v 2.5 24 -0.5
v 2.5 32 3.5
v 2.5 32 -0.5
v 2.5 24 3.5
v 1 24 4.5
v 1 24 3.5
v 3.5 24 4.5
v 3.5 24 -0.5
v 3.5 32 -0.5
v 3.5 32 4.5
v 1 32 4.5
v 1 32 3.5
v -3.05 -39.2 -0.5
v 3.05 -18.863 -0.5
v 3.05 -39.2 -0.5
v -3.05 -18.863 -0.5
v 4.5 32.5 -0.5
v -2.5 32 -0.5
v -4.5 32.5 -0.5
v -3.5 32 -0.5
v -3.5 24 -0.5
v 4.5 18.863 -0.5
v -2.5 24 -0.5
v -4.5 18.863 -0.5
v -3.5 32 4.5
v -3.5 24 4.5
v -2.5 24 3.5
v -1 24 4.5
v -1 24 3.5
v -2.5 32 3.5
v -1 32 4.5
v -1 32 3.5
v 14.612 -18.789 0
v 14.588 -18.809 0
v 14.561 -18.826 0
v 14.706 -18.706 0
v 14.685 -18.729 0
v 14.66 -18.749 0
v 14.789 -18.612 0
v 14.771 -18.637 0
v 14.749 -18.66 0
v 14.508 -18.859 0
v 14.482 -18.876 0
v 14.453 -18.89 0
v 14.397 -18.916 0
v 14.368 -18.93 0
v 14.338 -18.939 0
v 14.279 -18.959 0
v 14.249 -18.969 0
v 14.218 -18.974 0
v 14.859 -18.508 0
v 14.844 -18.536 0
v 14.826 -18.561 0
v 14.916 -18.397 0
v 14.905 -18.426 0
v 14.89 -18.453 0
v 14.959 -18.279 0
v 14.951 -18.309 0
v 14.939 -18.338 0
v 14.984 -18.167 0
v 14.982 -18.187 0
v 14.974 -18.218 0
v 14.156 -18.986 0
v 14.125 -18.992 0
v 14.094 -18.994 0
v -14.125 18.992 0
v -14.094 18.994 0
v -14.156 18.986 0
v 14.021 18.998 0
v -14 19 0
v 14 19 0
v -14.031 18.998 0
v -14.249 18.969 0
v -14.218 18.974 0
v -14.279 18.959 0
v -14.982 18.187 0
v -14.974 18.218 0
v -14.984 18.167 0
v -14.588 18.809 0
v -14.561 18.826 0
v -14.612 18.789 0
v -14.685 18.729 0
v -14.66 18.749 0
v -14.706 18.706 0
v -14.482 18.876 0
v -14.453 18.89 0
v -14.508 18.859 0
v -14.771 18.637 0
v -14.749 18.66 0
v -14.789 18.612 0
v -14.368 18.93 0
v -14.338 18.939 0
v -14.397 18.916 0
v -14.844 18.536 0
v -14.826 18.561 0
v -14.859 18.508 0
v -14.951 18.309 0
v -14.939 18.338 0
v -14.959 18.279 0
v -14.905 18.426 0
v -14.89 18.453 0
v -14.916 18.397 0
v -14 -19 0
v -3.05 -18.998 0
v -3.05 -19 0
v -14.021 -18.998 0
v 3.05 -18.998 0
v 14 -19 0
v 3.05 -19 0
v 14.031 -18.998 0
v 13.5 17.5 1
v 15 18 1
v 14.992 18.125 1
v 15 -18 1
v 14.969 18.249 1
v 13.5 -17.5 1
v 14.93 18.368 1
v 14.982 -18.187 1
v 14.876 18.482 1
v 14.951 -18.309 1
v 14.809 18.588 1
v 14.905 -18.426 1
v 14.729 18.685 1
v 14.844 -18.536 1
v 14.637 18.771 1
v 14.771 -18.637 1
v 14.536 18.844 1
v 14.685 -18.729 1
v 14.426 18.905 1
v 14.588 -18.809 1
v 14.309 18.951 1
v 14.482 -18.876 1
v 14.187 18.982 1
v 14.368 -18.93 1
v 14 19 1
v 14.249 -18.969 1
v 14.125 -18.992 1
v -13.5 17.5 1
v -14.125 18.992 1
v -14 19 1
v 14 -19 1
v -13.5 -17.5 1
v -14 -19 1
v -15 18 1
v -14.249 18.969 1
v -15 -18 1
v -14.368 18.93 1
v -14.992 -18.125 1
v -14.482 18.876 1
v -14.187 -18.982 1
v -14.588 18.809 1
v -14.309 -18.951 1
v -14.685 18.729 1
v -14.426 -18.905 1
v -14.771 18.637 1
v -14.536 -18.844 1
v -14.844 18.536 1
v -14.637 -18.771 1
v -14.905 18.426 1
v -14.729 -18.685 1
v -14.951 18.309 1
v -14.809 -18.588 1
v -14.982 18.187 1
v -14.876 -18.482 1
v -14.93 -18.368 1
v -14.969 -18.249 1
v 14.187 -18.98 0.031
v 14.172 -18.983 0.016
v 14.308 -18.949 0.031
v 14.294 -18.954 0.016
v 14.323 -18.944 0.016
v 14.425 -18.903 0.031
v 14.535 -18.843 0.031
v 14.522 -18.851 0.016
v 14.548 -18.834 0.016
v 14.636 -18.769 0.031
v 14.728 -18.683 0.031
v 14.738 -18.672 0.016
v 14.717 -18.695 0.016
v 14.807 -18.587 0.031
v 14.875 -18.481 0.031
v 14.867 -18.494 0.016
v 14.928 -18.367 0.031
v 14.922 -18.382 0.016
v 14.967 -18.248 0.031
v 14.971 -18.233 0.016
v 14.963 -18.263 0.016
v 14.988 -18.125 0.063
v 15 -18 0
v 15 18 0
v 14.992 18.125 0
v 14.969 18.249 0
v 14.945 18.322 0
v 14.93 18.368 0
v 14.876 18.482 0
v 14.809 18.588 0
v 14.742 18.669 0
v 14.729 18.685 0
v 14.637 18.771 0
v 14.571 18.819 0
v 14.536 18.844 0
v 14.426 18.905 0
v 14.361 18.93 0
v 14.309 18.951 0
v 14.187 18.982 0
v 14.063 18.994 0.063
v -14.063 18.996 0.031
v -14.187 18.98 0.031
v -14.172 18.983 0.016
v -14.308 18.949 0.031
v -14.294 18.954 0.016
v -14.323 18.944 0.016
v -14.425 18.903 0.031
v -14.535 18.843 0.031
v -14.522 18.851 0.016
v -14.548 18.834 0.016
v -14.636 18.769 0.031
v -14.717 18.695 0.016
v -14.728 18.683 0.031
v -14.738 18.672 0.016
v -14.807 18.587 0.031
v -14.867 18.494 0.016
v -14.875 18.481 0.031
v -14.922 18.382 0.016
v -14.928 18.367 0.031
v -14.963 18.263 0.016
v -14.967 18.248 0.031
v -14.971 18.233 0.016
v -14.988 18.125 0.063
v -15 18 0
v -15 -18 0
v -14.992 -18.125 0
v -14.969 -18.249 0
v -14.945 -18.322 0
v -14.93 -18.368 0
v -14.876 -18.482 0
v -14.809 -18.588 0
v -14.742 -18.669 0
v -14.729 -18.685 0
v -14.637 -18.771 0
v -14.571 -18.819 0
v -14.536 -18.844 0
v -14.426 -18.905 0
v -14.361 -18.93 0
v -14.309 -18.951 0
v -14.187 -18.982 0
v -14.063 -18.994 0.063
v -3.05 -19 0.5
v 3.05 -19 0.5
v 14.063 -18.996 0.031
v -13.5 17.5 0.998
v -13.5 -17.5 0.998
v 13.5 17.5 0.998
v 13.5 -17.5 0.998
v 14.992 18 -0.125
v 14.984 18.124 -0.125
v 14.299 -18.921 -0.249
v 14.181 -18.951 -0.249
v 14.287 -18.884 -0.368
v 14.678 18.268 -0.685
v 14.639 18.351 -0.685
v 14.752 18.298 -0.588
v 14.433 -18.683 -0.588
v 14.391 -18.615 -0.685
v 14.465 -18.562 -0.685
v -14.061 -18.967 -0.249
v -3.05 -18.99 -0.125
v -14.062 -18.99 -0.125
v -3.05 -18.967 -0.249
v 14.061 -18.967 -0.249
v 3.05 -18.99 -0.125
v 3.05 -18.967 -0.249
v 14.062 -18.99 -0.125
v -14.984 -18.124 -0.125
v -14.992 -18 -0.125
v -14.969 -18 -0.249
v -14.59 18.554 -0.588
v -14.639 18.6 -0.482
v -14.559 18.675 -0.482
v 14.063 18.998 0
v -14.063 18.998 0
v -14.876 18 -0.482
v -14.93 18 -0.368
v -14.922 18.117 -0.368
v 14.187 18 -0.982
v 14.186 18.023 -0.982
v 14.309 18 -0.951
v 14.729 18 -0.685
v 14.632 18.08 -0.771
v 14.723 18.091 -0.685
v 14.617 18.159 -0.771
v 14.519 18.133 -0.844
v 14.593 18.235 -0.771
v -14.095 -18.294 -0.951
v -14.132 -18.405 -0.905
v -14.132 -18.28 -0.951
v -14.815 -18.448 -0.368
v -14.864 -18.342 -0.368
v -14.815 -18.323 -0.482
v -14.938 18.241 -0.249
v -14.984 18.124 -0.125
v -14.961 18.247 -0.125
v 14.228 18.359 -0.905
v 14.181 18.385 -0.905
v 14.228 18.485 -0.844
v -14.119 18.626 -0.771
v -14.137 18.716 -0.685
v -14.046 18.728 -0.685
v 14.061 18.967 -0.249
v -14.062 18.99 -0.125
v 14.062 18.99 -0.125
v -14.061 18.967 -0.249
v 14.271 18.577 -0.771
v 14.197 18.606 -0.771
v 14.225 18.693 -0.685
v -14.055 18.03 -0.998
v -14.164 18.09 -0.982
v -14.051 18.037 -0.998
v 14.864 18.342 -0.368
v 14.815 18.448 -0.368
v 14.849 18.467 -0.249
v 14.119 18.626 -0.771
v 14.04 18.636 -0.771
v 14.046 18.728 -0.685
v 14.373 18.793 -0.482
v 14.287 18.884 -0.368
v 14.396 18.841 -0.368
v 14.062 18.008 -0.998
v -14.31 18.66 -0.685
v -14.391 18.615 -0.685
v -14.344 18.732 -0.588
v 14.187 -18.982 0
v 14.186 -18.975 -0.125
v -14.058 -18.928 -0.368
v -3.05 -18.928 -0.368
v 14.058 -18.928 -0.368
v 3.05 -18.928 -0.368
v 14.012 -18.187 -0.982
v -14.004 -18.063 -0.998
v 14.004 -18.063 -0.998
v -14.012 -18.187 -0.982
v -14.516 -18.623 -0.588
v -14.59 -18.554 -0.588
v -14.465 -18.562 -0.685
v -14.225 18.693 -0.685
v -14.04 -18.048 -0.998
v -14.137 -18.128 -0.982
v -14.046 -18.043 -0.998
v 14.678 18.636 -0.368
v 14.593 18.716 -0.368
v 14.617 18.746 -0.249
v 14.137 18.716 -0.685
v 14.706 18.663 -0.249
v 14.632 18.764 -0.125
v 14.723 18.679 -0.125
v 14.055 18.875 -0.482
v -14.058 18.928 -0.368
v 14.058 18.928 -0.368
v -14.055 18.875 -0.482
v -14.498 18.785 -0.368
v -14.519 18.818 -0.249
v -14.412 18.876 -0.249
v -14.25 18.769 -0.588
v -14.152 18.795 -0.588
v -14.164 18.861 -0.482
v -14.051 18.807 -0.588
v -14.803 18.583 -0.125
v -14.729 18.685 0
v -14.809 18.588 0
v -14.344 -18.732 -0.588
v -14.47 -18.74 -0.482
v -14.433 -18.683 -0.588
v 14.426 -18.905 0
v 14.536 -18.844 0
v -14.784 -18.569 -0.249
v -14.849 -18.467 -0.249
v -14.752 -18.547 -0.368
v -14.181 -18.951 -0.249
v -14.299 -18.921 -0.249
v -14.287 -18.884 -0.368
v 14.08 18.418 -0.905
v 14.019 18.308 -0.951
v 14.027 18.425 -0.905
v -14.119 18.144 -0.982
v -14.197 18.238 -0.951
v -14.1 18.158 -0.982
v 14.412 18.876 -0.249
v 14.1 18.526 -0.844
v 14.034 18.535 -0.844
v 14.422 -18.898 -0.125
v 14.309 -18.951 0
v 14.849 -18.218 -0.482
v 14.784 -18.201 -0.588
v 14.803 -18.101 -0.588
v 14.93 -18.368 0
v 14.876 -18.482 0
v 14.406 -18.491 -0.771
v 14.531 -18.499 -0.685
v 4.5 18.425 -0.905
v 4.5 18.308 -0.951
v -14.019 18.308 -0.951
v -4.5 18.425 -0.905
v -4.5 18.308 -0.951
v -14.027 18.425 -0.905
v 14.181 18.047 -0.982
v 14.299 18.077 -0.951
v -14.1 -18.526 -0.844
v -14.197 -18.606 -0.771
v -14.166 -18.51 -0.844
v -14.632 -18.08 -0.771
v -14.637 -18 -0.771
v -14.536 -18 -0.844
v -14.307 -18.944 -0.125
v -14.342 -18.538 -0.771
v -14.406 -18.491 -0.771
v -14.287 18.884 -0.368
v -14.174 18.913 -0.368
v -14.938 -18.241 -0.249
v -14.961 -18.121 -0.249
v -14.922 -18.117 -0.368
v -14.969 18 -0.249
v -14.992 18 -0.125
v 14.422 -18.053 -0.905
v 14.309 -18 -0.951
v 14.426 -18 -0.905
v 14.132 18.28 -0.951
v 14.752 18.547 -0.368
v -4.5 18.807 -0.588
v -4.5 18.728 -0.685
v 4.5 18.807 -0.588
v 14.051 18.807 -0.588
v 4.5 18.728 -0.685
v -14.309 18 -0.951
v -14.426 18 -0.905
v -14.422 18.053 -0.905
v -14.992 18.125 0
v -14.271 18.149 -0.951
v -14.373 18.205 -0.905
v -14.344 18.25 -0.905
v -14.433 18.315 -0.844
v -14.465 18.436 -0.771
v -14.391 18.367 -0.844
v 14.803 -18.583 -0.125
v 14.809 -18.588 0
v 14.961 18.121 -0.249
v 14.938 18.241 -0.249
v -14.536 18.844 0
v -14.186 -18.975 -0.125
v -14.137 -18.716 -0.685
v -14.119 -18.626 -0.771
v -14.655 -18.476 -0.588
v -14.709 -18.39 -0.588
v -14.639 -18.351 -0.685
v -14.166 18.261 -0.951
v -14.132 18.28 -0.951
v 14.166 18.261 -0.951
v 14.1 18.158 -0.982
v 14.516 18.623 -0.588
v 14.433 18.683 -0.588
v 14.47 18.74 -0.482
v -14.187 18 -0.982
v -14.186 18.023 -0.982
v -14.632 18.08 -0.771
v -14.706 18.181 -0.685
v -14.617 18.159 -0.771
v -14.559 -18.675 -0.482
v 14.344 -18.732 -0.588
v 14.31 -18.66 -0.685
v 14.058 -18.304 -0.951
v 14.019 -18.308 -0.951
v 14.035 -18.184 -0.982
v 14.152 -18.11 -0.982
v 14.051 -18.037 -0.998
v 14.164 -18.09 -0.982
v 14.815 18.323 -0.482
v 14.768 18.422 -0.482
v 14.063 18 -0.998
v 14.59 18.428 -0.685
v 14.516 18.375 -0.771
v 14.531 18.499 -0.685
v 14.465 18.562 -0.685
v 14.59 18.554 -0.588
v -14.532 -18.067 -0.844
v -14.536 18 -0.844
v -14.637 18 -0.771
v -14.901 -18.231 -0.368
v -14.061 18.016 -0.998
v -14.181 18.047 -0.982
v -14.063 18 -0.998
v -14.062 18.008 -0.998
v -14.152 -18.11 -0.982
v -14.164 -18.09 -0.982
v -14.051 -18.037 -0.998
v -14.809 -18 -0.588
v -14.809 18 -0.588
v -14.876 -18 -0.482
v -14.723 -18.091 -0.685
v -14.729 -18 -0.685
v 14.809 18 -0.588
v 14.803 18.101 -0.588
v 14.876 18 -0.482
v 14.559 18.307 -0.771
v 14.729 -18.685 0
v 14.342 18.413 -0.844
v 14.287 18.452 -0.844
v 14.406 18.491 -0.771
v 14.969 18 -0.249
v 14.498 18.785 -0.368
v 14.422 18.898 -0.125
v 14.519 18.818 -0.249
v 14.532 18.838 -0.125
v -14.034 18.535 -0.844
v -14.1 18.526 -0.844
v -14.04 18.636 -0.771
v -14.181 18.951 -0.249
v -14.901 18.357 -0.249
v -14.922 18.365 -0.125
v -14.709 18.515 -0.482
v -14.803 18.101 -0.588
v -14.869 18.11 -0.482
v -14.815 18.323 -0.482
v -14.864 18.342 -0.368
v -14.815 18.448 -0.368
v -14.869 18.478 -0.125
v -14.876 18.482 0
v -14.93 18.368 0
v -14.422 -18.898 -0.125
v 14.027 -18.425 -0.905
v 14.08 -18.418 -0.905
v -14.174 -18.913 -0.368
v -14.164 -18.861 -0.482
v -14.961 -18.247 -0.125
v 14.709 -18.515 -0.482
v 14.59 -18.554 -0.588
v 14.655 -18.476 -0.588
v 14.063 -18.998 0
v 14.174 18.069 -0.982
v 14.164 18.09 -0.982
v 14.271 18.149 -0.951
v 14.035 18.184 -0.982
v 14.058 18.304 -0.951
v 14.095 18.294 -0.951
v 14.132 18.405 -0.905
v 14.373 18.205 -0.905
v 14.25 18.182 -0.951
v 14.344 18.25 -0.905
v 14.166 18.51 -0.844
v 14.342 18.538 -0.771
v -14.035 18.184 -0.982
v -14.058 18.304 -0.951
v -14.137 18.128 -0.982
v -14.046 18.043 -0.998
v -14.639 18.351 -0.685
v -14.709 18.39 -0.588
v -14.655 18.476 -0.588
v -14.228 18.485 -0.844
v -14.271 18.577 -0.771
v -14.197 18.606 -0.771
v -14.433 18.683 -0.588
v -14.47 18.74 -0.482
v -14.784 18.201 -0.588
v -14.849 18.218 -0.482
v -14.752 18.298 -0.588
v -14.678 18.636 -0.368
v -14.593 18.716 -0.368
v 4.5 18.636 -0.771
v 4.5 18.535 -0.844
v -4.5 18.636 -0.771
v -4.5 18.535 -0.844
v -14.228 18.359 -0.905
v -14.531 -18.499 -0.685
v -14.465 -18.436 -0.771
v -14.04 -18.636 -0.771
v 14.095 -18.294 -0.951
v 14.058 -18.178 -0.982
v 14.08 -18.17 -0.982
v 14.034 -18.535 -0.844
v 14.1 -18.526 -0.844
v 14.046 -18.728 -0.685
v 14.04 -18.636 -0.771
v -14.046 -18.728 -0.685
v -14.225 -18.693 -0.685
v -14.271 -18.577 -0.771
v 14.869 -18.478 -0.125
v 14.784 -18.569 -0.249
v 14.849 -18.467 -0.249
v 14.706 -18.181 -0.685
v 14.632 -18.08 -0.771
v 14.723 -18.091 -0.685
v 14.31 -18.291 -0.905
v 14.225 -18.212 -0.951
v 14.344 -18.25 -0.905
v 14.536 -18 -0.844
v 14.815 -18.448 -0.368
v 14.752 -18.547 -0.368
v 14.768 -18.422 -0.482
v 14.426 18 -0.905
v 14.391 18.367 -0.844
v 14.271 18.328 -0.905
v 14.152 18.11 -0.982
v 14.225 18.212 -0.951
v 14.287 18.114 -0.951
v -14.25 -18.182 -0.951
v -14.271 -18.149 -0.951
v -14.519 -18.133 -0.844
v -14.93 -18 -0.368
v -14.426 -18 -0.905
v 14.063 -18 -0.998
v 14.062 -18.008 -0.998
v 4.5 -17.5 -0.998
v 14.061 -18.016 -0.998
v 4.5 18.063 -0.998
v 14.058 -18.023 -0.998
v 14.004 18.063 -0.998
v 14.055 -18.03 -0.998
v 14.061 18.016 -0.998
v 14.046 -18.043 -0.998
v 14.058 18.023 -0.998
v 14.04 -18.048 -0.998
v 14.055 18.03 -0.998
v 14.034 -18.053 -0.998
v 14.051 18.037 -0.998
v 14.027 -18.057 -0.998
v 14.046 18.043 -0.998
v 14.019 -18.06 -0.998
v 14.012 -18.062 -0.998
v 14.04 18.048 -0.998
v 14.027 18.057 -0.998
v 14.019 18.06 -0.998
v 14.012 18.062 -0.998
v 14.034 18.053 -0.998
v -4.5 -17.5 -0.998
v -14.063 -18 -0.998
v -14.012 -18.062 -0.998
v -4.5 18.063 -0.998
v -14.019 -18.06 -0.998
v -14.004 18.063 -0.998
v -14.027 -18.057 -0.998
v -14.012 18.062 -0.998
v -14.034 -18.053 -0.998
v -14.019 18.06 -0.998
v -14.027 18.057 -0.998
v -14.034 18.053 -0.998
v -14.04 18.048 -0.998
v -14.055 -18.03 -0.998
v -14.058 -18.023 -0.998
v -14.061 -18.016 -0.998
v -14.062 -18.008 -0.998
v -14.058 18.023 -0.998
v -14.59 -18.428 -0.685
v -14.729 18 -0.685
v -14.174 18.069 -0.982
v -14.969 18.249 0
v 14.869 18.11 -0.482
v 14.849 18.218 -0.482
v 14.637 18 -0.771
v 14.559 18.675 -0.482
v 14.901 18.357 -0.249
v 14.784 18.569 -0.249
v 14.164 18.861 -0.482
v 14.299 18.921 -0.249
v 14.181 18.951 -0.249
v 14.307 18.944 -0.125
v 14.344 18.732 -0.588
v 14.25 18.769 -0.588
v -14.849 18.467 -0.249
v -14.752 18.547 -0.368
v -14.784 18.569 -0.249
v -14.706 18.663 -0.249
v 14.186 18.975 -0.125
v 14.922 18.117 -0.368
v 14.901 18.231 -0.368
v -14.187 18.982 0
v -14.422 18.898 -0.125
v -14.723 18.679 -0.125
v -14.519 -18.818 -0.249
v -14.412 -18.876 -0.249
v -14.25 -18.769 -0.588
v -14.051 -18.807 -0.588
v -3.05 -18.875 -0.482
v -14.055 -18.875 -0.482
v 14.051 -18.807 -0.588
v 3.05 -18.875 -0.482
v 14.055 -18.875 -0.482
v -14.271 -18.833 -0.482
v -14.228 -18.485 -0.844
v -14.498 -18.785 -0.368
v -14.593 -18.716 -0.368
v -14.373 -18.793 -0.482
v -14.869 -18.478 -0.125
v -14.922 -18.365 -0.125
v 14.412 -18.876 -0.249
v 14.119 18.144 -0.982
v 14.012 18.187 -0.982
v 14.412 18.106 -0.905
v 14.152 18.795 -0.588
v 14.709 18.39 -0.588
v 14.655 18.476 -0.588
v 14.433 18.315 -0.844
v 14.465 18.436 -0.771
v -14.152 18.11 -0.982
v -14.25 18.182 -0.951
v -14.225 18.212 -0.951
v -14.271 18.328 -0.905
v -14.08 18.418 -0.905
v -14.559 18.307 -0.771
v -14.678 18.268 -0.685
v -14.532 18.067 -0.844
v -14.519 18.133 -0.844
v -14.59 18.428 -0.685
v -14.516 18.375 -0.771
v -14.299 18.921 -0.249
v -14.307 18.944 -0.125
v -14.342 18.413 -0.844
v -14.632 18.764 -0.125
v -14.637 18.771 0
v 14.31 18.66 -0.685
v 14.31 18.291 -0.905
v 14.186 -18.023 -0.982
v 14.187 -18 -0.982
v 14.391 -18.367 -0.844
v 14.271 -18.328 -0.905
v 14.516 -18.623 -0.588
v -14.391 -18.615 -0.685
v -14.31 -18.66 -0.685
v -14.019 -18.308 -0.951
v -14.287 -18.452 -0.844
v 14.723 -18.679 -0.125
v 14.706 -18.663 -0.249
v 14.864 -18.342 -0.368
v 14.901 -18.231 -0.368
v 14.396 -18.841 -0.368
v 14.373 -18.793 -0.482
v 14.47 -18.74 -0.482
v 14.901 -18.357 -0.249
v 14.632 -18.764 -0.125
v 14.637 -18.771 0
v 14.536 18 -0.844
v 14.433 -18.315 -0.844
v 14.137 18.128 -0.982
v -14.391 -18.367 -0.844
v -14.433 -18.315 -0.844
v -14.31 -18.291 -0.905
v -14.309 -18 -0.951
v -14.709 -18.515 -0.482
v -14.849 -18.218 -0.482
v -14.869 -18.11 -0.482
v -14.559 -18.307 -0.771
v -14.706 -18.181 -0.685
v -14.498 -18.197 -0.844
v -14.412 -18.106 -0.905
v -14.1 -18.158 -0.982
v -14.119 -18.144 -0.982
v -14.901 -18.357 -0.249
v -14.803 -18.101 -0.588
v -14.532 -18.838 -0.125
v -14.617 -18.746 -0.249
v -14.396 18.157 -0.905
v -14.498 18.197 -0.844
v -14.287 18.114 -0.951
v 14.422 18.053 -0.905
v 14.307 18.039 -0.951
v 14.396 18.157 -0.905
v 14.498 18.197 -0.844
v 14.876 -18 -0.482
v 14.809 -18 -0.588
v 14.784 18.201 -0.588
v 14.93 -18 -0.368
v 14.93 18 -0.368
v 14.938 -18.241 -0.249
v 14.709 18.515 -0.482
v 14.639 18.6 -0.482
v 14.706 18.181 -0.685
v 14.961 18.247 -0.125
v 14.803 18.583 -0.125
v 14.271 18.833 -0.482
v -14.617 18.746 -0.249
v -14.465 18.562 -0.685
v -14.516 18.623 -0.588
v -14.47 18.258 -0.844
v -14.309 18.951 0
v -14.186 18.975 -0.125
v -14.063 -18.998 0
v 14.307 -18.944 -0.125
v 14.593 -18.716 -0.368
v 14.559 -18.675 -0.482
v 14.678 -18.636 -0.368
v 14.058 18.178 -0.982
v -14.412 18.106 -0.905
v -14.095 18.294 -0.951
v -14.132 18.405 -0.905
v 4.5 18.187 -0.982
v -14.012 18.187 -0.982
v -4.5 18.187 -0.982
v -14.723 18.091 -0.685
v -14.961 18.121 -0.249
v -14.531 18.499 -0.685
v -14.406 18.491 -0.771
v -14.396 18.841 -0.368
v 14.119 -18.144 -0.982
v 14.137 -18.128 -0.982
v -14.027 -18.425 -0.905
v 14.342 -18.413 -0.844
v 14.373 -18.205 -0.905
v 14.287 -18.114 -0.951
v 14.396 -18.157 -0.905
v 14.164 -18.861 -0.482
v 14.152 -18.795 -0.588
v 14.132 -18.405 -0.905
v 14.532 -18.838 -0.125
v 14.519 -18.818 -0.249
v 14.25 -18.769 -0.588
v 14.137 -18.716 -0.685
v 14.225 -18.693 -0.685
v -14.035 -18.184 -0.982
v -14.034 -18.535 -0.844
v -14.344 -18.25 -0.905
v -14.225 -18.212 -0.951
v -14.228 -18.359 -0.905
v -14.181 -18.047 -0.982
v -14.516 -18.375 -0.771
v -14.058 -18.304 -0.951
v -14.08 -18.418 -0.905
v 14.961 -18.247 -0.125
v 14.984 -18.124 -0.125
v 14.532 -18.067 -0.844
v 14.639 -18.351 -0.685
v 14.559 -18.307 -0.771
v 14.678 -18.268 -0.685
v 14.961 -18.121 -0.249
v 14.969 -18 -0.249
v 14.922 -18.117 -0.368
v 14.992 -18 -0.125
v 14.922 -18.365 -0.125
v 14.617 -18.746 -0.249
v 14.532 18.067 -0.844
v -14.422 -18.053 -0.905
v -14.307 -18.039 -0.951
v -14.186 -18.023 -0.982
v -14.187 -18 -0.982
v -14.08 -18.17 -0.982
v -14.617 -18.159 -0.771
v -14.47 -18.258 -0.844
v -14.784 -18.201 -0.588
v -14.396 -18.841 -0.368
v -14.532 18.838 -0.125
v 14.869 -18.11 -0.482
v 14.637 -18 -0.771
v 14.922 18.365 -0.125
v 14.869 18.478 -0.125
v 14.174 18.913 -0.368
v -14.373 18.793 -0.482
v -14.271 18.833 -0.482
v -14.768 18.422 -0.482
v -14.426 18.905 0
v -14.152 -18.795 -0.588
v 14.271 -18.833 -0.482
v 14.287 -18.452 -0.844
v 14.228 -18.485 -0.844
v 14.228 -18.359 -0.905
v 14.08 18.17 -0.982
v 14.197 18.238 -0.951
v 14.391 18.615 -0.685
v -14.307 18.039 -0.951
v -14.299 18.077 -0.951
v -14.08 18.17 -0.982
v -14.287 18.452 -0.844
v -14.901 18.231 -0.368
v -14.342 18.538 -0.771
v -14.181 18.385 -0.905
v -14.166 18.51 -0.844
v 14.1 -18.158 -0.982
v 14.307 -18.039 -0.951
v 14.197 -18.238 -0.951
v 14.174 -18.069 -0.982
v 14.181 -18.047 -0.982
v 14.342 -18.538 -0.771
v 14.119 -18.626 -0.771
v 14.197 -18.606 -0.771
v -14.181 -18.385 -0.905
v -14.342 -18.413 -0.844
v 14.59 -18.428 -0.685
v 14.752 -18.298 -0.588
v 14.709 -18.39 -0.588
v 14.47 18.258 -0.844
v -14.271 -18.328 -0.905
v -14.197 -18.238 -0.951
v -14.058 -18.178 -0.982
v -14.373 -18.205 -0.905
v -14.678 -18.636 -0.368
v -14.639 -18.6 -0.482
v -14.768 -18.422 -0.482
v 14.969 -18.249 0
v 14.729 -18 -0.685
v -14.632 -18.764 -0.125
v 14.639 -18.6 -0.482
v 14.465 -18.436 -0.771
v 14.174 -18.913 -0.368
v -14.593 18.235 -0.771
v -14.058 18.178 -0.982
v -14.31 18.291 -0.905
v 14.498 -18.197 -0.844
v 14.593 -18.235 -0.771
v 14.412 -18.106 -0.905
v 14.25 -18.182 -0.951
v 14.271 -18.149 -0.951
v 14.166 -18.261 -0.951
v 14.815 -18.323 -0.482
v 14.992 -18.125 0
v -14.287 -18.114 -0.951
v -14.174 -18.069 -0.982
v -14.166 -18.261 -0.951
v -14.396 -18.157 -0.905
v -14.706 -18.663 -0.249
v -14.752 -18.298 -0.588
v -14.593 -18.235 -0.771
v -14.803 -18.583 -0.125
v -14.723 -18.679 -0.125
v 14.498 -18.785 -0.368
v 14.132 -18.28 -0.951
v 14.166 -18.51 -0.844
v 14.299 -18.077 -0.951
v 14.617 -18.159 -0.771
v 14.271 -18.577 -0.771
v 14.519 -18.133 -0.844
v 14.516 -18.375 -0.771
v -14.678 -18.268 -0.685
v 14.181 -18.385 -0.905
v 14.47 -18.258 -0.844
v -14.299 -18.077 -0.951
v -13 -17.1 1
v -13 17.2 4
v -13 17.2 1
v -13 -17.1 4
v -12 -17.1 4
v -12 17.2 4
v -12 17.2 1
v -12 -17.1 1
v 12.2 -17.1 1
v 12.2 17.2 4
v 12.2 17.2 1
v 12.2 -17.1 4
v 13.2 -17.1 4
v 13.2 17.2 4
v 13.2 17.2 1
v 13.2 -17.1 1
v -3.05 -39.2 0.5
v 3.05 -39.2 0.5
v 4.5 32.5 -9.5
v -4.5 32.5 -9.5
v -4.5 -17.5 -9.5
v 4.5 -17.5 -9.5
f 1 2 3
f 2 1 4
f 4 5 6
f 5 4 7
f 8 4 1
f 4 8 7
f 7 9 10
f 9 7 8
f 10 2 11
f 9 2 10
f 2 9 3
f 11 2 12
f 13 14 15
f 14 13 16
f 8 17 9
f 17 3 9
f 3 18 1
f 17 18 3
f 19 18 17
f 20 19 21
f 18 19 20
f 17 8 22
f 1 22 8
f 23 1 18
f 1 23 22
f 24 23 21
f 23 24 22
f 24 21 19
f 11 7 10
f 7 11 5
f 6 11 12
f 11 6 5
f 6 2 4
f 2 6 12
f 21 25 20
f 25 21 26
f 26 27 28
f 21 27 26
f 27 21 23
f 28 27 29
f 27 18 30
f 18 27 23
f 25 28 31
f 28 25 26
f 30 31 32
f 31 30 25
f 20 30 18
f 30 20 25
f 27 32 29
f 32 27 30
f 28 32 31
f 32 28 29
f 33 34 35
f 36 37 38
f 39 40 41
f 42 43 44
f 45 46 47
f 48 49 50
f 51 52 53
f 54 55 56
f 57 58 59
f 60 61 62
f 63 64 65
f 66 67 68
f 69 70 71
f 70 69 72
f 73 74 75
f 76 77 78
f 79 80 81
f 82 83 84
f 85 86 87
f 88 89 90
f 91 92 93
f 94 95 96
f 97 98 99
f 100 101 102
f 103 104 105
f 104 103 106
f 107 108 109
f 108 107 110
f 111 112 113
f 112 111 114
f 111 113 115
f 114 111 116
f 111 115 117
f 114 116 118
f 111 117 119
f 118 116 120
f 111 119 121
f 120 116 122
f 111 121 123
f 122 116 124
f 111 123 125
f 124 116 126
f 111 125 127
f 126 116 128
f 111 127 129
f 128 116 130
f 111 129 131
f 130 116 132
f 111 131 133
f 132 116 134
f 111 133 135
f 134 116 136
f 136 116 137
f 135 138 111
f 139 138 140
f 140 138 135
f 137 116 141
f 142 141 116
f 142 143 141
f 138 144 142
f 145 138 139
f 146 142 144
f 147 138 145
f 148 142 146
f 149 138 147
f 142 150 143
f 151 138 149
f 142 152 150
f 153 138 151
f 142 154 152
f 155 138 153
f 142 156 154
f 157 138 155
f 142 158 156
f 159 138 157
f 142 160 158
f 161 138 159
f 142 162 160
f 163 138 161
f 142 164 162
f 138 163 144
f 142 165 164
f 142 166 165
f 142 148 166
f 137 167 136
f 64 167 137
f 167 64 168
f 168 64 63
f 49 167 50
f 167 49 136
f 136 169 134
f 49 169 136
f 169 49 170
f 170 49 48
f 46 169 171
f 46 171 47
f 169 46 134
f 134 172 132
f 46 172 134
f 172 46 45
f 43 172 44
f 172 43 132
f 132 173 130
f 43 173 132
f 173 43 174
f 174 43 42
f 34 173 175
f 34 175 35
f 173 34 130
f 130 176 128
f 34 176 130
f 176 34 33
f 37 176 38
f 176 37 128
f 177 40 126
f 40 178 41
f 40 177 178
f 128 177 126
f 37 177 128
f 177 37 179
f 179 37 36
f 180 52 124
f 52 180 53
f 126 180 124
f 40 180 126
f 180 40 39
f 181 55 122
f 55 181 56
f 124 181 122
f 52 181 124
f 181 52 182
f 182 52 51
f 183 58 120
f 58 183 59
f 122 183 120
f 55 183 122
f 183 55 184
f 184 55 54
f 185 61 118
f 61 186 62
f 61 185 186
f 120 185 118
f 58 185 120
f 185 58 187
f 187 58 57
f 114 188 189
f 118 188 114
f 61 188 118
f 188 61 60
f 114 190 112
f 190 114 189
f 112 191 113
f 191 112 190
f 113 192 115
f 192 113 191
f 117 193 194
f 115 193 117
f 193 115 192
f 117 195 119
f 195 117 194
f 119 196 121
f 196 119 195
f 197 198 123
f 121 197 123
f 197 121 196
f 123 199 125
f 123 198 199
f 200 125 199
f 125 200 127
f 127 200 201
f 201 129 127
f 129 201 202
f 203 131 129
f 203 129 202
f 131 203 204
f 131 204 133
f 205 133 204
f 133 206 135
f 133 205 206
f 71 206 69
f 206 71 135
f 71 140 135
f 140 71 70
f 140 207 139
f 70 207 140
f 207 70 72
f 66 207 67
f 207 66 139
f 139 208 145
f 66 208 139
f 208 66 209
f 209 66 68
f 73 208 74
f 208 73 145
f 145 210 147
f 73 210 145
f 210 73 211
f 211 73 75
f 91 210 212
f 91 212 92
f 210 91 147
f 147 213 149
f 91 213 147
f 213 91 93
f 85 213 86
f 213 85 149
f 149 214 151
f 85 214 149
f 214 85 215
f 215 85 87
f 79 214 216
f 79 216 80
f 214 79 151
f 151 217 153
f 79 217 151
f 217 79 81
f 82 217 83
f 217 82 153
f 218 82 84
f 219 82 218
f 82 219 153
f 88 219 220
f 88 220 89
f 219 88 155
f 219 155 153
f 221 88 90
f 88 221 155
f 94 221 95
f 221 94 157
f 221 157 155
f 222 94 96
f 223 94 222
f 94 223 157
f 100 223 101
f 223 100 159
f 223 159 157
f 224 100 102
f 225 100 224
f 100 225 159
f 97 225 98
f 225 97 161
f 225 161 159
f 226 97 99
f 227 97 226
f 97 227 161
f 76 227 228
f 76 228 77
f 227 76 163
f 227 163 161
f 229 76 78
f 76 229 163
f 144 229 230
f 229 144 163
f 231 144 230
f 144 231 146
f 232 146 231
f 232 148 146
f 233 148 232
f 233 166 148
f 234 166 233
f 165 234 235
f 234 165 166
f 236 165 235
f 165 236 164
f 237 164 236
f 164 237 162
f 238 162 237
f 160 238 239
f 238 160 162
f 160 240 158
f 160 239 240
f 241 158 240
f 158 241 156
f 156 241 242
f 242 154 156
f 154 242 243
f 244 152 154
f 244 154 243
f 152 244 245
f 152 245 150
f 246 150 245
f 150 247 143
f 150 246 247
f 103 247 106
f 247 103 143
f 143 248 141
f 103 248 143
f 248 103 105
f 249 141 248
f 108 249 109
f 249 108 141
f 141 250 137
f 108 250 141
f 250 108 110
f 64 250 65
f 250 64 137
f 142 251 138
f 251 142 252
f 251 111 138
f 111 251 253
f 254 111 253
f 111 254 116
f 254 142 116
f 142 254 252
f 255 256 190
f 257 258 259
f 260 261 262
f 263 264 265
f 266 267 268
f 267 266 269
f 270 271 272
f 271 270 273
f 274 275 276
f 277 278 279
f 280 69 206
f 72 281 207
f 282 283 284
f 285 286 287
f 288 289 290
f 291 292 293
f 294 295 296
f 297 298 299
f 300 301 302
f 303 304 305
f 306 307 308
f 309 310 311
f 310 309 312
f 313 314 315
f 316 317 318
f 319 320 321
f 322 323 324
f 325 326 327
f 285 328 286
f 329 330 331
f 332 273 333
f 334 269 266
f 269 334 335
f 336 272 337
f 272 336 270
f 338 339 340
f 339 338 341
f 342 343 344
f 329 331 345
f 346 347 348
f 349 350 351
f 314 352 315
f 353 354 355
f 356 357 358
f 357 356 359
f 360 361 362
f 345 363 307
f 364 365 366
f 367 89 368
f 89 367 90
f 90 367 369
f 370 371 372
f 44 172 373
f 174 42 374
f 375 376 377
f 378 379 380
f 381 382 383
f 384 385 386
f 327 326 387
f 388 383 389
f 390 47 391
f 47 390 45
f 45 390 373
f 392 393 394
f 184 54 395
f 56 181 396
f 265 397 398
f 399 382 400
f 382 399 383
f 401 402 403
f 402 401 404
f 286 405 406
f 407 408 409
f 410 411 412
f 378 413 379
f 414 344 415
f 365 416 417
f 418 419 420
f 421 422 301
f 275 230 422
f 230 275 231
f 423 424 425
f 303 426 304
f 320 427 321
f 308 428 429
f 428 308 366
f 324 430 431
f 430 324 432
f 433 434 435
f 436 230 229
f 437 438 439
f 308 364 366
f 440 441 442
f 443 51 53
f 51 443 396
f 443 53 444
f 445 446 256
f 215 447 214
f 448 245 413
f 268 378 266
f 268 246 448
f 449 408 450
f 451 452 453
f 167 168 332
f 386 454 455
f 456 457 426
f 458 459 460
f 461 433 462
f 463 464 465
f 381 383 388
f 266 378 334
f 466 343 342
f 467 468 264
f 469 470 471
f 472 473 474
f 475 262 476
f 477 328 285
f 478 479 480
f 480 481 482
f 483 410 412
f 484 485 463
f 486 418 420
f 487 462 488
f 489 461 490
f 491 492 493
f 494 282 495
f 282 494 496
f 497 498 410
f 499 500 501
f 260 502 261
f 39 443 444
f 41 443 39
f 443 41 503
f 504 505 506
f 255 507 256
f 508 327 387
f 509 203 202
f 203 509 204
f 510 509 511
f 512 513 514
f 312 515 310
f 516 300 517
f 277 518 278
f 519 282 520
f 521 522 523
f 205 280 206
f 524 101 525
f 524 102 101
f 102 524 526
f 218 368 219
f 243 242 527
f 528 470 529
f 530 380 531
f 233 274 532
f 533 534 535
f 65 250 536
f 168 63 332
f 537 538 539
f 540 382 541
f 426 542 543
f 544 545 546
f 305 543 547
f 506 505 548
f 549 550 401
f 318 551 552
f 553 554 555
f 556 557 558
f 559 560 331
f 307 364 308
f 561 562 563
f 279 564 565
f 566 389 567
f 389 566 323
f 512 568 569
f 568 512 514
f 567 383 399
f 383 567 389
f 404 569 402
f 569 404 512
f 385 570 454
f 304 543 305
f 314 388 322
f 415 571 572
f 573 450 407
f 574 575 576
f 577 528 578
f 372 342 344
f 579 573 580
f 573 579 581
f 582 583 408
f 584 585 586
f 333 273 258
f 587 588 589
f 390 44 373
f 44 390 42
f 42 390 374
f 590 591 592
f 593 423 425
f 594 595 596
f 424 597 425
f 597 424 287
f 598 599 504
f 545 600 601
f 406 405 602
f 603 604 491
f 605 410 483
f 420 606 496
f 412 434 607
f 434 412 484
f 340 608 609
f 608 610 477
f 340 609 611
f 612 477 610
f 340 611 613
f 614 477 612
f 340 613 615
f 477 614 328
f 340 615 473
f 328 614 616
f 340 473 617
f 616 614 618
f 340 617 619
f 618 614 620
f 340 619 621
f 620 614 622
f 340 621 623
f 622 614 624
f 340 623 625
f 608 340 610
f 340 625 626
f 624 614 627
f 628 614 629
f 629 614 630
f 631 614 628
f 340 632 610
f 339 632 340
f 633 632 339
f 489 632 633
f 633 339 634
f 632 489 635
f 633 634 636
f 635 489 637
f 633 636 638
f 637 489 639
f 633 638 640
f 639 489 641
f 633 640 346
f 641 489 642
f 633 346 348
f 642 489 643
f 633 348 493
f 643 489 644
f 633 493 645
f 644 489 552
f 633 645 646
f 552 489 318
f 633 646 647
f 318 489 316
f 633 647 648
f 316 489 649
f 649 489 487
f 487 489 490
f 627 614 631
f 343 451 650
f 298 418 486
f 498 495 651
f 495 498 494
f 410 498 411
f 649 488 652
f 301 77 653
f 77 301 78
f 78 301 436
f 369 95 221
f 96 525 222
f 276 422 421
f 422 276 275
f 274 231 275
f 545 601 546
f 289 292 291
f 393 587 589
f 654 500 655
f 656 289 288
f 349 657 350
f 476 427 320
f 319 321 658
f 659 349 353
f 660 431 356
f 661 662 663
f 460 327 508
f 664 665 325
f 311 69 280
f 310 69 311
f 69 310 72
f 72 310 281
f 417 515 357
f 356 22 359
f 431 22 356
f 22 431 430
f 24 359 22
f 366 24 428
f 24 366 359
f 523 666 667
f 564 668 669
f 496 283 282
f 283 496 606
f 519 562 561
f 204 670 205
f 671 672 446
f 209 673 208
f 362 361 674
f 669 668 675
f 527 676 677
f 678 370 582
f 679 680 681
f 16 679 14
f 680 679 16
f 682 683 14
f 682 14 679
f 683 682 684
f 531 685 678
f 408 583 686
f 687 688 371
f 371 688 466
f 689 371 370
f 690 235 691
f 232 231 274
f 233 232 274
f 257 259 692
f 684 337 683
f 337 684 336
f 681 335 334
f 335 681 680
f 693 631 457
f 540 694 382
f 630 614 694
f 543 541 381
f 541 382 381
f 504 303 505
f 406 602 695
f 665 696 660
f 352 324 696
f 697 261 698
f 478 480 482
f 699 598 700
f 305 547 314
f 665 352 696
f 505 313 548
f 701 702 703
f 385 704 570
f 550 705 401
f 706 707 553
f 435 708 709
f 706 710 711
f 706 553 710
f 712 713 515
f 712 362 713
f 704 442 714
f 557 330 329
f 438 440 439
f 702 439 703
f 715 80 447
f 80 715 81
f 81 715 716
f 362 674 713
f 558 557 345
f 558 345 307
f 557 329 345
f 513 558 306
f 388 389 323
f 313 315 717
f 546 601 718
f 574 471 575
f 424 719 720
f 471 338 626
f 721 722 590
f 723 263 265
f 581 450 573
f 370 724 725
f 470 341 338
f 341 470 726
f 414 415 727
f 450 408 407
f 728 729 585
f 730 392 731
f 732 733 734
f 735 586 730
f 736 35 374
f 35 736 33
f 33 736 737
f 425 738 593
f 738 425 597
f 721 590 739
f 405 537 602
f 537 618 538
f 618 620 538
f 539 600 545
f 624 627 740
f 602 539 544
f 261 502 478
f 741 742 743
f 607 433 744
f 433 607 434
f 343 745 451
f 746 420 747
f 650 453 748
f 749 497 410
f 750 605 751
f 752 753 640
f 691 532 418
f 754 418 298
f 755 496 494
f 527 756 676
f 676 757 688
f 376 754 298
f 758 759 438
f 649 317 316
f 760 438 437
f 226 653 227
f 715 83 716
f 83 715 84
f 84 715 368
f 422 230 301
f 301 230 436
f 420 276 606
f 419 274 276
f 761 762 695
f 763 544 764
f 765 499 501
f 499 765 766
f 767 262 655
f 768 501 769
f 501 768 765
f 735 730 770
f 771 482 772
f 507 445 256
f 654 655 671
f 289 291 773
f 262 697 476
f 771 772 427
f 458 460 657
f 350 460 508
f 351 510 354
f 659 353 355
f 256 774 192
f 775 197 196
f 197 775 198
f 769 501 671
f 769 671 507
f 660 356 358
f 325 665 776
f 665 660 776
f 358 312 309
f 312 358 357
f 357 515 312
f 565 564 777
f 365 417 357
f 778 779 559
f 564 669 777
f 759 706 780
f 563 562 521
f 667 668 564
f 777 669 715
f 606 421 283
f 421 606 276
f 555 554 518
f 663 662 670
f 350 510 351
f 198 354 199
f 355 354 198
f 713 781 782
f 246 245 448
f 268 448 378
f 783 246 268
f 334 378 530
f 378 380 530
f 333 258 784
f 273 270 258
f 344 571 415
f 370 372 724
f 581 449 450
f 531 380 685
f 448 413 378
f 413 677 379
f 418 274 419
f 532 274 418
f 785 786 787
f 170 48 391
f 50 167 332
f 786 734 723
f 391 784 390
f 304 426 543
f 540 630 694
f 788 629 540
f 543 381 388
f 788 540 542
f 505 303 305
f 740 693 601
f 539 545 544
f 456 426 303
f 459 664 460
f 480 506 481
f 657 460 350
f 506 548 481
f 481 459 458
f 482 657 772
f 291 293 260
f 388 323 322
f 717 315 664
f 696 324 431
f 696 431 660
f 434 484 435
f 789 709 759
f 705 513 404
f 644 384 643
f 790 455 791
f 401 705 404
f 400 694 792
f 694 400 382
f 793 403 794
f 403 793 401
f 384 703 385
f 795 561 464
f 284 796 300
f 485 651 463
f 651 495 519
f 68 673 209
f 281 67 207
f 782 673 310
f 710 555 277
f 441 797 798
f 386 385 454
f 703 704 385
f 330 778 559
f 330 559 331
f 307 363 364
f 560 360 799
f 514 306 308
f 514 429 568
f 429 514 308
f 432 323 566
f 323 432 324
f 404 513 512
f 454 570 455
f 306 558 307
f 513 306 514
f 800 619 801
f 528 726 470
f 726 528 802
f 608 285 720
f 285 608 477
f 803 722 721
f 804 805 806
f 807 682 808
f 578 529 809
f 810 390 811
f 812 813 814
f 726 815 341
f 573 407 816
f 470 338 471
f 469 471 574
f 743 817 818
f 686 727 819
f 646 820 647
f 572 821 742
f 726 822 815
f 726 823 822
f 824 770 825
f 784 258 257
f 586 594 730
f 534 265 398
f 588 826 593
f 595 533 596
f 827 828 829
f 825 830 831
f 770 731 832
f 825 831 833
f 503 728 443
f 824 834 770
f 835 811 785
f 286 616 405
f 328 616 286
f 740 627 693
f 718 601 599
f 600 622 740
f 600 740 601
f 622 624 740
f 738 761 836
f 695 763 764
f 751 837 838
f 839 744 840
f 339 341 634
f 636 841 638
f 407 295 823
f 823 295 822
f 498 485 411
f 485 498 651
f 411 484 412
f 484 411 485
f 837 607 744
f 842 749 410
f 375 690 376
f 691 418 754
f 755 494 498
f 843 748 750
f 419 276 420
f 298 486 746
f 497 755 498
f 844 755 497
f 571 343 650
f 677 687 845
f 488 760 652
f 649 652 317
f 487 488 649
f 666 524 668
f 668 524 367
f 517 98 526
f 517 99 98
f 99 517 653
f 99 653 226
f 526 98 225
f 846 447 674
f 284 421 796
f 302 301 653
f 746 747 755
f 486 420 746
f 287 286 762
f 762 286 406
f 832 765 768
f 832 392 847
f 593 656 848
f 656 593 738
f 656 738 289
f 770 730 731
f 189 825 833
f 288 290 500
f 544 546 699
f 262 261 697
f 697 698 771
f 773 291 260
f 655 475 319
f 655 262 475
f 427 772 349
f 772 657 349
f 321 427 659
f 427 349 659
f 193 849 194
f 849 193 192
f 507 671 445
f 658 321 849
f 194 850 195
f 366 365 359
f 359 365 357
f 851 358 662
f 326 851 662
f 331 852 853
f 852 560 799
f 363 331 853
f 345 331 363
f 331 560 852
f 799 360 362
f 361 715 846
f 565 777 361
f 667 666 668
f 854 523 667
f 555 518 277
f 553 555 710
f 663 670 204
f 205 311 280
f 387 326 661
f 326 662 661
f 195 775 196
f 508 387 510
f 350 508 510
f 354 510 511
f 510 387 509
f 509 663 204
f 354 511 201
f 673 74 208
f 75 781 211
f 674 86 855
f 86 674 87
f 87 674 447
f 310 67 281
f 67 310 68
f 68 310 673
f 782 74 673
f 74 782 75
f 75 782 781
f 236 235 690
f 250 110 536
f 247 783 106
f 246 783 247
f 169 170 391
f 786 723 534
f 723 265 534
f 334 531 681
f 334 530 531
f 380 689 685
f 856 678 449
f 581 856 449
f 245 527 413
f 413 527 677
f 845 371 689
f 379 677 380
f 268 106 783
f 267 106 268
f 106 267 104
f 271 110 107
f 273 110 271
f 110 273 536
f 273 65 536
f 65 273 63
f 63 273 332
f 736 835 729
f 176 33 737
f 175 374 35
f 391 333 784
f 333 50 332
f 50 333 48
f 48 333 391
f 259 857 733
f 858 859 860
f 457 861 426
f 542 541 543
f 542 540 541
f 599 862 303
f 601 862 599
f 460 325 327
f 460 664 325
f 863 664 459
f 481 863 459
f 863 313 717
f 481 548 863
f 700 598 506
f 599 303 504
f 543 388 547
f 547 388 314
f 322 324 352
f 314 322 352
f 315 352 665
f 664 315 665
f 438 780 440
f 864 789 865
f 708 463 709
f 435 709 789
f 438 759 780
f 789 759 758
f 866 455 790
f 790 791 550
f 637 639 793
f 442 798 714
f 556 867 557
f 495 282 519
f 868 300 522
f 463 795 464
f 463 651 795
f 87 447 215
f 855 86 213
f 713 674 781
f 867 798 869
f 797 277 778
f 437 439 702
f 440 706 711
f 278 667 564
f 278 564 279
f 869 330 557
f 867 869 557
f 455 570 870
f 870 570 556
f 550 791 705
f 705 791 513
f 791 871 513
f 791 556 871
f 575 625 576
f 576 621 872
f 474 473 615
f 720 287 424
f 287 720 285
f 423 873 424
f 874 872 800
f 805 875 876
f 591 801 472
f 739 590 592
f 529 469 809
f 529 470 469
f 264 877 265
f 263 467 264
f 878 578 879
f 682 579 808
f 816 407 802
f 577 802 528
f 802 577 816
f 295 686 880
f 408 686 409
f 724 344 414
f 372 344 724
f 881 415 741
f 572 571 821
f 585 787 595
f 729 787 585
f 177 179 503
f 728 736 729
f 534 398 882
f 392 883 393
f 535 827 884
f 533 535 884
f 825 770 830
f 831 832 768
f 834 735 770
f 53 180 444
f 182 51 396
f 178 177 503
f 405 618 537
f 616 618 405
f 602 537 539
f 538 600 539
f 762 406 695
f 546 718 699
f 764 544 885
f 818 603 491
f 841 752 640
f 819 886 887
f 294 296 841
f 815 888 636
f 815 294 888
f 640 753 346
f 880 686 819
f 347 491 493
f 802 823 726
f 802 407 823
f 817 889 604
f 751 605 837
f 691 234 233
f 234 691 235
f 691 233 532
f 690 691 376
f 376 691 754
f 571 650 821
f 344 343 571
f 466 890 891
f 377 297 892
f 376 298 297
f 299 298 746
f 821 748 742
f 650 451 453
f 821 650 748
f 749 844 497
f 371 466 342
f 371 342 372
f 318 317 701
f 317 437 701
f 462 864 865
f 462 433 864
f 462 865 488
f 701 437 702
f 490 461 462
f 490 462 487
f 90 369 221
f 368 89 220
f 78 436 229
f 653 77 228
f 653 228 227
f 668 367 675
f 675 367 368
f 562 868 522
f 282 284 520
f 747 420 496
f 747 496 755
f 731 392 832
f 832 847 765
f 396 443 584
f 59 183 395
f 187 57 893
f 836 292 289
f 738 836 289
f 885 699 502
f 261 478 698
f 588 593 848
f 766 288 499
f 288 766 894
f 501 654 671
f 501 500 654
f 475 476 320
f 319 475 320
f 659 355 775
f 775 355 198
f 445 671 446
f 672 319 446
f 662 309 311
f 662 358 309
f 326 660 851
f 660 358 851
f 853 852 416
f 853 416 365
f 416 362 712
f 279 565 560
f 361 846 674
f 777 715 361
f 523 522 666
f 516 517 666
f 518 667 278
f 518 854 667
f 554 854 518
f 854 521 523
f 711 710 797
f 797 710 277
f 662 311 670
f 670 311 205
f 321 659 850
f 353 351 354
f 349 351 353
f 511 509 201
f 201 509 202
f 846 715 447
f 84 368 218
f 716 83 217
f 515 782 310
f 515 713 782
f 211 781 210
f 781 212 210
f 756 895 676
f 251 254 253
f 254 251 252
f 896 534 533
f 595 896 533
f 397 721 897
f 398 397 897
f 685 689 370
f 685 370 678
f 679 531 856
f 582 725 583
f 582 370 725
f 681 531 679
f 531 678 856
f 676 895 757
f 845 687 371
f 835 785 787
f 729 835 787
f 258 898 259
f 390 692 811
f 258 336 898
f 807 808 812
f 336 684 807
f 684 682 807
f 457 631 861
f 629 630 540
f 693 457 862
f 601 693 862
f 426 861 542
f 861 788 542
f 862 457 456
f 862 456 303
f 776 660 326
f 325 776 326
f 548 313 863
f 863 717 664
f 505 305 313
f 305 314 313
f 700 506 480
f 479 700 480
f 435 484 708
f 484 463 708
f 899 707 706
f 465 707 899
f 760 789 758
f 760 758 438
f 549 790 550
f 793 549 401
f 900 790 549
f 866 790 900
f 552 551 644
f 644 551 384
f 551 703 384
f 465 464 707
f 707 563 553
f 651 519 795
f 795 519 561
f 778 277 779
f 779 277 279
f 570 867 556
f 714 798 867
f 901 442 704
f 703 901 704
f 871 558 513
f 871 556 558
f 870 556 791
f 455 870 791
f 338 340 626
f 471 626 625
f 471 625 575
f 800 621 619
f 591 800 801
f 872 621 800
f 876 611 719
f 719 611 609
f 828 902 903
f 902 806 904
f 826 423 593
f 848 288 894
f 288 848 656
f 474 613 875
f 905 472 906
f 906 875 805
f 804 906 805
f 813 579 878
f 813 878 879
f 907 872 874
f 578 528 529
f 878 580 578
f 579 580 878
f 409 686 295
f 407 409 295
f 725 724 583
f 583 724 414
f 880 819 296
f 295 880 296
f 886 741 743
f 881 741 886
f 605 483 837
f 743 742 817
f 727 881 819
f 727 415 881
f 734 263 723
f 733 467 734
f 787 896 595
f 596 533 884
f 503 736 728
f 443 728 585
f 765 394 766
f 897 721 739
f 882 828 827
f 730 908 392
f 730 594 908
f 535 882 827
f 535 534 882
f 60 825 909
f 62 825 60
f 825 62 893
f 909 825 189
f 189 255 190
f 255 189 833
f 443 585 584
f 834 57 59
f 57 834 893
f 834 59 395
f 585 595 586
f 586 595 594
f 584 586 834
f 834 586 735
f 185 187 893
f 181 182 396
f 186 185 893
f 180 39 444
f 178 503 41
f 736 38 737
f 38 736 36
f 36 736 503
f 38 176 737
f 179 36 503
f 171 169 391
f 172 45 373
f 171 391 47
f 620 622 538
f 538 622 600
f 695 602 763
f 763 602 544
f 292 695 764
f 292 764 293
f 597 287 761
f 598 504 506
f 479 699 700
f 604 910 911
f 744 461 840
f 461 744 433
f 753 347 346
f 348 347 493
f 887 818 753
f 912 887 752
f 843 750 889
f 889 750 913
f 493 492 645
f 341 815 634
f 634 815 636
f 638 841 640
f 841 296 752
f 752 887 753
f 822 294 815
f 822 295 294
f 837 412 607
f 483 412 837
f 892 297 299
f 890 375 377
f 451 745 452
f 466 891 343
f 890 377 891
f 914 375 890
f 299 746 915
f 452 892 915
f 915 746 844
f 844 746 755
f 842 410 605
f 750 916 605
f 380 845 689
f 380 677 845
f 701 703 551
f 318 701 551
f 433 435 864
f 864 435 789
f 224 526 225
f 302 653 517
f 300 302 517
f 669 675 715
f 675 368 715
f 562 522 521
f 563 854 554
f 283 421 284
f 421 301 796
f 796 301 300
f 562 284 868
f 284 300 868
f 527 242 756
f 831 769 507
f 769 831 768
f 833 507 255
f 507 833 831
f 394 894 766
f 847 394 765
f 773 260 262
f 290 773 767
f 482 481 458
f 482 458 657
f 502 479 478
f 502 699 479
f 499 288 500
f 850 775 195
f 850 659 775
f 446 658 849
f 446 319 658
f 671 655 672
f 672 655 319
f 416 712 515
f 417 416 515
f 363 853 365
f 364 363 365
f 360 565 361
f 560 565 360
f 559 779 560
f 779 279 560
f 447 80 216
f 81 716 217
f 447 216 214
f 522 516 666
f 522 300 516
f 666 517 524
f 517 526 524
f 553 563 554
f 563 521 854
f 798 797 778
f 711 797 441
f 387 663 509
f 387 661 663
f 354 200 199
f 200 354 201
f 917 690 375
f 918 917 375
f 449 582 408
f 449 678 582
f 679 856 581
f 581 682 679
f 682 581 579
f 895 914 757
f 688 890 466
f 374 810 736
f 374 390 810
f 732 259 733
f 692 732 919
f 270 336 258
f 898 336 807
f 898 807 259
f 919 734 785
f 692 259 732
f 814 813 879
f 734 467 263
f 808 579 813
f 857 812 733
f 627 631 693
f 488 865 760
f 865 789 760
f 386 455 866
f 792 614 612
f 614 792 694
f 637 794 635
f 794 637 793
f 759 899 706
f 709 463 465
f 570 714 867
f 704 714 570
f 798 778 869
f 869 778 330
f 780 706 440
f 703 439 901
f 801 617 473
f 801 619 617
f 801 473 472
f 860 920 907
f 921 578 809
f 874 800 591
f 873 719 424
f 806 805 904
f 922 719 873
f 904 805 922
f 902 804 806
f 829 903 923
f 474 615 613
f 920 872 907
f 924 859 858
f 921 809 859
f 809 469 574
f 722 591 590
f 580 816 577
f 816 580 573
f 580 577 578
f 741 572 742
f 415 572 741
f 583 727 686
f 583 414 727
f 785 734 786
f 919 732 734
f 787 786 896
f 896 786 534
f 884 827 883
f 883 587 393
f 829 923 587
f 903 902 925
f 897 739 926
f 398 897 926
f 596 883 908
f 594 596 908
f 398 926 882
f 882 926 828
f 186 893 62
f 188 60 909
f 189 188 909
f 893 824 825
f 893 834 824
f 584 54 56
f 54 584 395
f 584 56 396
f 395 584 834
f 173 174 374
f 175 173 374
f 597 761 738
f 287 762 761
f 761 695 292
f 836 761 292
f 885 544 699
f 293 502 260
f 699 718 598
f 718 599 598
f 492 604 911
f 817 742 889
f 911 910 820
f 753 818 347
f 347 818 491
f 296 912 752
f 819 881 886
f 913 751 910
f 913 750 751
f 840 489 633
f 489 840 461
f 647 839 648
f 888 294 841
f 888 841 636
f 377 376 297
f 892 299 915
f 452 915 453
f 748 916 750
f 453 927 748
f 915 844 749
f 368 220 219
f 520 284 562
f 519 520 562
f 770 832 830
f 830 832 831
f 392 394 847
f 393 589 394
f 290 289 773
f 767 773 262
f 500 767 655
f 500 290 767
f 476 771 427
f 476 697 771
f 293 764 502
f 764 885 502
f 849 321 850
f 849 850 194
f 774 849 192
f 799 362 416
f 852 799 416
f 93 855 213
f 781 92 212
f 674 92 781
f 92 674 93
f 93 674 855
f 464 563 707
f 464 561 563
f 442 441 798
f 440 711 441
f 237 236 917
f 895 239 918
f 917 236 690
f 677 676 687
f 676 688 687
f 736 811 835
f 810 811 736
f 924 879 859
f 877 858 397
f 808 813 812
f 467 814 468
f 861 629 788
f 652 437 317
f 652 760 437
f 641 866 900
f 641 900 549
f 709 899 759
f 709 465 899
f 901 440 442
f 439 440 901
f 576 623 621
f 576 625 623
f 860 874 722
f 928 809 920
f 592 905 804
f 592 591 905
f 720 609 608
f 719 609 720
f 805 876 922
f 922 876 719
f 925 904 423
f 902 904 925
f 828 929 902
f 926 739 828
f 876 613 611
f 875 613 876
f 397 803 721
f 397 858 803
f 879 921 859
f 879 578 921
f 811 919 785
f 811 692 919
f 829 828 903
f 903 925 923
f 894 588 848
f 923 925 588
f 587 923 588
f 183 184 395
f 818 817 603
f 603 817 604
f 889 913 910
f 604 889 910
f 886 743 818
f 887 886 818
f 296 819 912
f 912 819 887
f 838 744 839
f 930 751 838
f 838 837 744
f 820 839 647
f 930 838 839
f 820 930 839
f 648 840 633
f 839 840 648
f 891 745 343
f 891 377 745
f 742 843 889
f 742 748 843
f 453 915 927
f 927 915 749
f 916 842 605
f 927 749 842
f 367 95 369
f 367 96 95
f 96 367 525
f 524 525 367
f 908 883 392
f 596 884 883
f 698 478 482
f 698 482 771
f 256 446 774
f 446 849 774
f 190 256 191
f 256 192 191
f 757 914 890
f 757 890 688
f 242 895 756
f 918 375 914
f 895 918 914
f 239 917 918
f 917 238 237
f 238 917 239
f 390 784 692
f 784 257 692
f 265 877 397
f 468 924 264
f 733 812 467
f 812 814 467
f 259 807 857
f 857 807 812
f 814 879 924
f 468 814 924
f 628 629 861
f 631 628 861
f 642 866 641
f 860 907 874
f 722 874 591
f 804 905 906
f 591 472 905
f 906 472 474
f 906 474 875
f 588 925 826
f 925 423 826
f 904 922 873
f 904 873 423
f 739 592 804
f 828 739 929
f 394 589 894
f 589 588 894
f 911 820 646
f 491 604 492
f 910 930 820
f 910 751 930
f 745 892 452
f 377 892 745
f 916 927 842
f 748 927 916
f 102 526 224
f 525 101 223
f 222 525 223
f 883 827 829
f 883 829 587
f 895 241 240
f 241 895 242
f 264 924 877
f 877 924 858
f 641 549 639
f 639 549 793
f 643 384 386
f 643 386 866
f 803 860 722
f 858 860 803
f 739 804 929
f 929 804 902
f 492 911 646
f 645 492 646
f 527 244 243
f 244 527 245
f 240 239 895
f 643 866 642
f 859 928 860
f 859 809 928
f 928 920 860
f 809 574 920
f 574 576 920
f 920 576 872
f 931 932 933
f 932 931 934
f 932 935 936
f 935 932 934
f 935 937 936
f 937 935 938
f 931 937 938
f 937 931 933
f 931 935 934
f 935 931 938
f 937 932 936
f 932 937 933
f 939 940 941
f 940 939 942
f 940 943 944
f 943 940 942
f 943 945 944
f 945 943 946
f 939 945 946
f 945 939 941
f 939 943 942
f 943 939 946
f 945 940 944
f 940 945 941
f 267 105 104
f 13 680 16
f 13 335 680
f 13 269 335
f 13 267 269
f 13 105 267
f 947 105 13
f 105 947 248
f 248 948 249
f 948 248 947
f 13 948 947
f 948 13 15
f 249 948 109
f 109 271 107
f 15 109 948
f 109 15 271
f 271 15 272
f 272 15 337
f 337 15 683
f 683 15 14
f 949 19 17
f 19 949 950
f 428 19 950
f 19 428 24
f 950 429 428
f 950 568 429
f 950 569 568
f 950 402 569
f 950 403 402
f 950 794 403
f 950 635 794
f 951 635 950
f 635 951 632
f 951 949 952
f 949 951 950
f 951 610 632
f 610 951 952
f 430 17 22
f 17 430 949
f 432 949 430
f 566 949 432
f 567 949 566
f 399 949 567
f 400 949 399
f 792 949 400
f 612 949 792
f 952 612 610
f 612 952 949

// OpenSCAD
$fn=50;
BOX_W = 28; // Box Width
BOX_L = 36;// Box Length
BOX_H = 1.0; // Box Height
//SCREW_SIZE = .5; // Screw size in mm
CORNER_RADIUS = 1.0; // Radius of corners
WALL = 1.0;// Wall Thickness

KEEL_WIDTH=9.0;
KEEL_HEIGHT=9.0;
KEEL_LENGTH=50;

difference() {
  union() {
    linear_extrude( BOX_H )
    difference(){
      offset(r=CORNER_RADIUS) square( [BOX_W, BOX_L], center=true );
      offset( r= CORNER_RADIUS - WALL ) square( [BOX_W-WALL, BOX_L-WALL],  center=true );
    };

    coordinates = [ [0,0],[0,BOX_L],[BOX_W,BOX_L],[BOX_W,0] ];

    translate ( [-BOX_W/2, -BOX_L/2] )
    hull()
    for (i = coordinates)
      translate(i) sphere(CORNER_RADIUS);

    translate([BOX_W/-2+WALL,BOX_L/-2+0.9,WALL]) cube([WALL,BOX_L-(WALL*2)+0.3,3]);

    translate([BOX_W/2-WALL*1.8,BOX_L/-2+0.9,WALL]) cube([WALL,BOX_L-(WALL*2)+0.3,3]);

    // mic channel cover
    translate([0,-17,WALL-1])
    rotate([90,0,0])
    #linear_extrude(22.2) square([6.1,1.0], center=true);
    
    // keel
    translate([0,32.5,-5])
    rotate([90,0,0])
    #linear_extrude(KEEL_LENGTH) square([KEEL_WIDTH, KEEL_HEIGHT], center=true); 

    // Inverted L-shaped C-clamp
    difference() {
      translate([KEEL_WIDTH/2-2, KEEL_LENGTH-18, -0.5])
      rotate([90, 0, 0])
      union() {
        // Vertical arm of the C-clamp 2
        translate([0, 0, 0]) cube([1, 5, 8]);
        // Horizontal arm of the C-clamp
        rotate([90, 0, 0])
        translate([-1.5, 0, -5]) cube([1.5, 8, 1]);
          
        // Vertical arm of the C-clamp 1
        translate([-6, 0, 0]) cube([1, 5, 8]);
        // Horizontal arm of the C-clamp
        rotate([90, 0, 0])
        translate([-5, 0,-5]) cube([1.5, 8, 1]);


        // Horizontal arm of the C-clamp
        //rotate([90, 0, 0])
        //translate([-5, 0, -5]) cube([5, 5, 1]);
      }
      // Cable hole
      //translate([0, 0, -1]) cylinder(h=4, r=0.8, center=true);
    }
  }
}
